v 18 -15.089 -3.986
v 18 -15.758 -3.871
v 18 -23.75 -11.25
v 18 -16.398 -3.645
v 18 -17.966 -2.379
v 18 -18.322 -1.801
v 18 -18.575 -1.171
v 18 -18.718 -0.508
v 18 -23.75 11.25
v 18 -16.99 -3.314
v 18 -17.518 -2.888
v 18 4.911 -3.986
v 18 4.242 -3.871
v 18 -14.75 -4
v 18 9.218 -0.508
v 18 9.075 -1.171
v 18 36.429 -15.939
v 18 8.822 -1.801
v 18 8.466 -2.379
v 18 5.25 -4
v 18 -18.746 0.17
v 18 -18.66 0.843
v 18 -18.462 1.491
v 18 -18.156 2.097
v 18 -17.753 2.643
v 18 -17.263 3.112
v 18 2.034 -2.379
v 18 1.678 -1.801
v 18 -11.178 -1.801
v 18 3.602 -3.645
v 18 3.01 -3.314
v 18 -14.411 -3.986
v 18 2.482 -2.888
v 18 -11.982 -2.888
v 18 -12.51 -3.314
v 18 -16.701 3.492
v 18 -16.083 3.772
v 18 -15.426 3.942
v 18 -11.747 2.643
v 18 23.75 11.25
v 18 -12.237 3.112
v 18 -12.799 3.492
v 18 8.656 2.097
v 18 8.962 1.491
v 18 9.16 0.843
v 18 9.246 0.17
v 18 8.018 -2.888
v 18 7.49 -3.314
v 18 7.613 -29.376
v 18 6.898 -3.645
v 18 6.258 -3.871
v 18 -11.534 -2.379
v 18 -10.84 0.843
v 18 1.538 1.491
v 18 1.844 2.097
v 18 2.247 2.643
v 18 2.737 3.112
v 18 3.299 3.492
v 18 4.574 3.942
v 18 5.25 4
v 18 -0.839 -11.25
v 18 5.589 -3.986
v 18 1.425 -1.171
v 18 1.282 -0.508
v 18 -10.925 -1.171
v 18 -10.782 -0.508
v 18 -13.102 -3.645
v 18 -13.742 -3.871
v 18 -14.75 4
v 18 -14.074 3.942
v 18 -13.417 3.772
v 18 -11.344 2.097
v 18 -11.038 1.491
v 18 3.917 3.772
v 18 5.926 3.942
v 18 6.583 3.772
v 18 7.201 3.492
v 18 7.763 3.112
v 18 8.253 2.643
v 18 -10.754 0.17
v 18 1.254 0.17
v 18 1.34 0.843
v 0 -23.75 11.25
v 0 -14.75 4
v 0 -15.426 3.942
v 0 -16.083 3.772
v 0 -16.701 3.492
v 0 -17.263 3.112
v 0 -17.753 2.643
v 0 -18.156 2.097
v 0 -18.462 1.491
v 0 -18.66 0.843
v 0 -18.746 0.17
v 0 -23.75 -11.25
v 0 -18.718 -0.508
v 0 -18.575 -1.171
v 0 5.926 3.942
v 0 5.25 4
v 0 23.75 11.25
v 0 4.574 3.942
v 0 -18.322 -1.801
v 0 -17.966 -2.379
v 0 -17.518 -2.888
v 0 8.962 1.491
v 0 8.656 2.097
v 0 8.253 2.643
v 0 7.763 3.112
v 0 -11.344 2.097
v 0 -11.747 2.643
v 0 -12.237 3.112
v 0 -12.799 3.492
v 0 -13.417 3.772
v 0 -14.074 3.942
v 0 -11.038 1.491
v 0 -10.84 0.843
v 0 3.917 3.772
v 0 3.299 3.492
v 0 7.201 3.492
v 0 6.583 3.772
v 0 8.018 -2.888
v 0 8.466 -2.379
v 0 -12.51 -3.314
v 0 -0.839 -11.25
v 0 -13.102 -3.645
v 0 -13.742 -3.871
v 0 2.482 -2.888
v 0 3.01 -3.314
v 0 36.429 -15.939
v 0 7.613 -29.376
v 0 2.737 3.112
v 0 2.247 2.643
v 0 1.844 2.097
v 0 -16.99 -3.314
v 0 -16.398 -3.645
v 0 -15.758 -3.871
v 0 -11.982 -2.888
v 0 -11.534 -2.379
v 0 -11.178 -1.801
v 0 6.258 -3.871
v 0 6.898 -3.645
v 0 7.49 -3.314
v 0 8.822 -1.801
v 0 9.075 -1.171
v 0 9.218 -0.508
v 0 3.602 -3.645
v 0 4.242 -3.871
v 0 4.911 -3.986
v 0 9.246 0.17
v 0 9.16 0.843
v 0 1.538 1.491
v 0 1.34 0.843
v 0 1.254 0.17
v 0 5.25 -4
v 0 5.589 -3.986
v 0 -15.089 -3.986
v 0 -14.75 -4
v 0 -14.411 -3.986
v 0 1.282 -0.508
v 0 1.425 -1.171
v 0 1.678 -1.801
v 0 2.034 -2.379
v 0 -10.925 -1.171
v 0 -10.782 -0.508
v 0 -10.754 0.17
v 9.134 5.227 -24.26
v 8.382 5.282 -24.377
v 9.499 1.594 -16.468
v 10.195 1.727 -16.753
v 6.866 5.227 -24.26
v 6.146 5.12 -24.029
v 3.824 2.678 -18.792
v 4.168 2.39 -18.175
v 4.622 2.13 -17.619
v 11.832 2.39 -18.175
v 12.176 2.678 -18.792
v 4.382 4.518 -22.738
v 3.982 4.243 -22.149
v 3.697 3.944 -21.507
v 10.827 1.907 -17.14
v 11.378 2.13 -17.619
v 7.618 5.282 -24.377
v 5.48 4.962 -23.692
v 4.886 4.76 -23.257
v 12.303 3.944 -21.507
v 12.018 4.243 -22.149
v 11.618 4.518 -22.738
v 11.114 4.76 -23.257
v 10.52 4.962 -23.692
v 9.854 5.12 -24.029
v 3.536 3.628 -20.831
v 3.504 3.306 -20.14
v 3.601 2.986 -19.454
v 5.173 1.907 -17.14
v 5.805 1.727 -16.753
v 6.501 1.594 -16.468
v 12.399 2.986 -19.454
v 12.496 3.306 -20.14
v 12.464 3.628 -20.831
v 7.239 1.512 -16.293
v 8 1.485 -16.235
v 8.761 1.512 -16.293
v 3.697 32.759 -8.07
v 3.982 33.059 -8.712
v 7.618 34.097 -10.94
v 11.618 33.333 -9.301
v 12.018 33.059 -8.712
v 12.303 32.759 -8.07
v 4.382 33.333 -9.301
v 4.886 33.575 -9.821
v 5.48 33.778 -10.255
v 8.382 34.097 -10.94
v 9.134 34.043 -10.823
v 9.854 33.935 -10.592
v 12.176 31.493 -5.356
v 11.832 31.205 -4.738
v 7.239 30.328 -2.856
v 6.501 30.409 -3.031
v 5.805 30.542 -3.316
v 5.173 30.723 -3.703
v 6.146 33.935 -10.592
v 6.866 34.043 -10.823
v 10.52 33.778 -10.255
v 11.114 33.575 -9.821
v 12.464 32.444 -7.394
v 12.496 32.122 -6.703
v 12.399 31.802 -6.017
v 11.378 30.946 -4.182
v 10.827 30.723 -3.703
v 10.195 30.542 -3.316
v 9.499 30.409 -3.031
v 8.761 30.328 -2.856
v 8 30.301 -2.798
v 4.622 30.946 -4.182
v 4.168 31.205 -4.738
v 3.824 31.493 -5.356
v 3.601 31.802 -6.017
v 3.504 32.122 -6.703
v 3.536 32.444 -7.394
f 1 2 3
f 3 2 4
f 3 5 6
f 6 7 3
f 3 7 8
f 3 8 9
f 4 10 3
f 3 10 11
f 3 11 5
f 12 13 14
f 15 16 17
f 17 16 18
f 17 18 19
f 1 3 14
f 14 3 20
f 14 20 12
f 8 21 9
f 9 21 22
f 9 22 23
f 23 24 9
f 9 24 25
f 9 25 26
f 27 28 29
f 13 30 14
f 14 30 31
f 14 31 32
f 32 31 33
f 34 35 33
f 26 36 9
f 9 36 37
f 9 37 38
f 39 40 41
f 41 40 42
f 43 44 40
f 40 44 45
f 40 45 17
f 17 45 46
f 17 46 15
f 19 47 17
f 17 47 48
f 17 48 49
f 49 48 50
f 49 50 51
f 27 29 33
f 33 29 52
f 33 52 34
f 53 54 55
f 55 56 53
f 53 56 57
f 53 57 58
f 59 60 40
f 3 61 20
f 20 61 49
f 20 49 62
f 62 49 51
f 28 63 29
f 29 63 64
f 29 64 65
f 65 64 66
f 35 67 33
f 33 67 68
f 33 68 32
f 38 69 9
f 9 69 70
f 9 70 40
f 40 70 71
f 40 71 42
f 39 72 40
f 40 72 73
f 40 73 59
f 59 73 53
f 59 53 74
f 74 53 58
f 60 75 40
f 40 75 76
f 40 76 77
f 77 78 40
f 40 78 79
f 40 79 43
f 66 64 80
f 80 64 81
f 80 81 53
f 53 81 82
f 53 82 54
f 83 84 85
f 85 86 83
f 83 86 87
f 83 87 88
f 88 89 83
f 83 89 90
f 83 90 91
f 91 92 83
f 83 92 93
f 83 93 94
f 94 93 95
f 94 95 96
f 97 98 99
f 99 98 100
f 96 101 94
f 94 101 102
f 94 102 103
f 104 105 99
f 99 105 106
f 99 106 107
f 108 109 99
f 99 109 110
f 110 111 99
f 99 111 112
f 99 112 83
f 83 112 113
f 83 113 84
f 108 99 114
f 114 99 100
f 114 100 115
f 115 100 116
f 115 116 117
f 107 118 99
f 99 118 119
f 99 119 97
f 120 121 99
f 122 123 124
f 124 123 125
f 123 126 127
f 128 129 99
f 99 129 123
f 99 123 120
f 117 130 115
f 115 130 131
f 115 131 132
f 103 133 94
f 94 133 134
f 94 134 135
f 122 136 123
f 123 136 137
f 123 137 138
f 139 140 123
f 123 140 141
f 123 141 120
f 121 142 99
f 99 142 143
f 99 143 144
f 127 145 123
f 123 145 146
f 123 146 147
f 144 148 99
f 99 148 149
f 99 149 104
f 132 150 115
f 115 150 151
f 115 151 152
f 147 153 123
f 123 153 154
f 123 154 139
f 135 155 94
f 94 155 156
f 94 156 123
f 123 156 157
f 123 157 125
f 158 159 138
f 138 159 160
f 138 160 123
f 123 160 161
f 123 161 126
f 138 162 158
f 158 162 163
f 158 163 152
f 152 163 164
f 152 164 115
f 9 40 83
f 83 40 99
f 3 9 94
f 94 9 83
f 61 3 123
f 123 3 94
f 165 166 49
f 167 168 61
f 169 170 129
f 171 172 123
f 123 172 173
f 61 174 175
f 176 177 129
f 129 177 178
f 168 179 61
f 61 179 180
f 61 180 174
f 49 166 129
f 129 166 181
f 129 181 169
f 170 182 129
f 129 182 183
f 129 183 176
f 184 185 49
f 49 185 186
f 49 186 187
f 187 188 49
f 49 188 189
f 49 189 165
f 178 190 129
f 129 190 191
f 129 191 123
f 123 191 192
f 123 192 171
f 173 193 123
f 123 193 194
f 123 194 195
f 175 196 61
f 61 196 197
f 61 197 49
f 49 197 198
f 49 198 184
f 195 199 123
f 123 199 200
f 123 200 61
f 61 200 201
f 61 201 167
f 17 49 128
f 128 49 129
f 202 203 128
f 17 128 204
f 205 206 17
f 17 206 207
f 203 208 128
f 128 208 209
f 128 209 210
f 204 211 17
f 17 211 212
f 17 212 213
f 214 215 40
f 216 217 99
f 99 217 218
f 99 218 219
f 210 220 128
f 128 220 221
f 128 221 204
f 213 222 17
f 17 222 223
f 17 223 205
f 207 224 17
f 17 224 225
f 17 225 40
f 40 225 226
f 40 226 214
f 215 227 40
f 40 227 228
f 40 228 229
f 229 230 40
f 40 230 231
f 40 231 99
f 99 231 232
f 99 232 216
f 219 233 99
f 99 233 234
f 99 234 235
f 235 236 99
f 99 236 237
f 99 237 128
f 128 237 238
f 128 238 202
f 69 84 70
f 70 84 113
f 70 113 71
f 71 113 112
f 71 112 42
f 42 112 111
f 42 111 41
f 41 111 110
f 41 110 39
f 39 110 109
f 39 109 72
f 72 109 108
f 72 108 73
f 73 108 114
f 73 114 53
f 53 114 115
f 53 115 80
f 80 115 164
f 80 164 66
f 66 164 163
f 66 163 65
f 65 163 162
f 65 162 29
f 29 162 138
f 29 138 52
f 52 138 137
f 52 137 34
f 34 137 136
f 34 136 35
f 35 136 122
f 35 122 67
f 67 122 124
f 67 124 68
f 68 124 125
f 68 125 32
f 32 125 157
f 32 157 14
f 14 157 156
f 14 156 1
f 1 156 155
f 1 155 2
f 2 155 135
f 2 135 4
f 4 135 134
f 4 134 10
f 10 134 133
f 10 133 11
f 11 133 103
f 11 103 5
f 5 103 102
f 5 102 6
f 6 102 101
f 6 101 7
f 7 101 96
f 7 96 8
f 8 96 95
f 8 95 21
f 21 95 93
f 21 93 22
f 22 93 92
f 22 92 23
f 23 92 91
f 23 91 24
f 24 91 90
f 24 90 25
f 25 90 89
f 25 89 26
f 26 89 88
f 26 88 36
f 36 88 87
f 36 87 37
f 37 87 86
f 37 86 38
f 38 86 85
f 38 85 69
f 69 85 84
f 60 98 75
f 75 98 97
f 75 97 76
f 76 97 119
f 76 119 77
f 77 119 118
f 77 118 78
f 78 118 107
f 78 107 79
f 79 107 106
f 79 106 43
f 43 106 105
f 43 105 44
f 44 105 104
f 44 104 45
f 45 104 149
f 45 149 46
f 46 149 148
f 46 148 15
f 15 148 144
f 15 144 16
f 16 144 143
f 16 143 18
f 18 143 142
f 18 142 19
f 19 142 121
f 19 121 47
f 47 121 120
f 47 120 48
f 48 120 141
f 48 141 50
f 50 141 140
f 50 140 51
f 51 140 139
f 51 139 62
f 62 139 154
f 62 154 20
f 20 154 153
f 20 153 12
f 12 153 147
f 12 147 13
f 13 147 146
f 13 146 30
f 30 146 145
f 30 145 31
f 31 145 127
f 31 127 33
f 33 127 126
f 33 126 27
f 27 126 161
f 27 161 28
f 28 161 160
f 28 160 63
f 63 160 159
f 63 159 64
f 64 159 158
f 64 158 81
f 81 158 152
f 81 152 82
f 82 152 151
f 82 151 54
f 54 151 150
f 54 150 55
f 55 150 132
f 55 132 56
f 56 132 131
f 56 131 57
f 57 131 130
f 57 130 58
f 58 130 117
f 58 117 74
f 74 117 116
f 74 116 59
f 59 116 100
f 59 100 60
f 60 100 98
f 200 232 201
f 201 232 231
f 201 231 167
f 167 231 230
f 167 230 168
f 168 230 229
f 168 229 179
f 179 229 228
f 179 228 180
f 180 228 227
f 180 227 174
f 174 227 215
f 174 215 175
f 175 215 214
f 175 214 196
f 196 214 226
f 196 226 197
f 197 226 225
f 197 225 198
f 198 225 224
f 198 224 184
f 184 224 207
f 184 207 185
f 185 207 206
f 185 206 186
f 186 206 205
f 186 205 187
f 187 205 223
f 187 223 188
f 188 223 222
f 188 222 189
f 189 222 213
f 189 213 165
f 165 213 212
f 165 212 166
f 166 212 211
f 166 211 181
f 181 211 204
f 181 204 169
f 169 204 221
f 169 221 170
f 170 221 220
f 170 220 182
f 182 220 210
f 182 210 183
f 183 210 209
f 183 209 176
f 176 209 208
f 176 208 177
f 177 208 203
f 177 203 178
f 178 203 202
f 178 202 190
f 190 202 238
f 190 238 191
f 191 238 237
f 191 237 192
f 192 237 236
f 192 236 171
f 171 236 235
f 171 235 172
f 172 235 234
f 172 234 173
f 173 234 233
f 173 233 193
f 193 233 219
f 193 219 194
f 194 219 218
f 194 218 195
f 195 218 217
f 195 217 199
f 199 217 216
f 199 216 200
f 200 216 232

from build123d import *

# Parameters (mm, degrees)
SKETCH1_R           = 4
BOSS_EXTRUDE1_DEPTH = 18
SKETCH2_R           = 4.5
CUT_EXTRUDE1_DEPTH  = 61.218975205


with BuildPart() as part:
    # Sketch1 → Boss-Extrude1 (new body)
    with BuildSketch(Plane(origin=(0, 0, 0), x_dir=(0, 0, -1), z_dir=(1, 0, 0))):
        Polygon((-11.25, 23.75), (15.939233611, 36.428547852), (29.376155741, 7.612975355), (11.25, -0.83938988), (11.25, -23.75), (-11.25, -23.75), align=None)
        with Locations((0, -14.75)):
            Circle(SKETCH1_R, mode=Mode.SUBTRACT)
        with Locations((0, 5.25)):
            Circle(SKETCH1_R, mode=Mode.SUBTRACT)
    extrude(amount=BOSS_EXTRUDE1_DEPTH)

    # Sketch2 → Cut-Extrude1 (cut, through all)
    with BuildSketch(Plane(origin=(0, 23.817102858, 11.106097458), x_dir=(1, 0, 0), z_dir=(0, 0.906307787, 0.422618262))):
        with Locations((8, 19.841221112)):
            Circle(SKETCH2_R)
    extrude(amount=-CUT_EXTRUDE1_DEPTH, mode=Mode.SUBTRACT)


solid = part.part
